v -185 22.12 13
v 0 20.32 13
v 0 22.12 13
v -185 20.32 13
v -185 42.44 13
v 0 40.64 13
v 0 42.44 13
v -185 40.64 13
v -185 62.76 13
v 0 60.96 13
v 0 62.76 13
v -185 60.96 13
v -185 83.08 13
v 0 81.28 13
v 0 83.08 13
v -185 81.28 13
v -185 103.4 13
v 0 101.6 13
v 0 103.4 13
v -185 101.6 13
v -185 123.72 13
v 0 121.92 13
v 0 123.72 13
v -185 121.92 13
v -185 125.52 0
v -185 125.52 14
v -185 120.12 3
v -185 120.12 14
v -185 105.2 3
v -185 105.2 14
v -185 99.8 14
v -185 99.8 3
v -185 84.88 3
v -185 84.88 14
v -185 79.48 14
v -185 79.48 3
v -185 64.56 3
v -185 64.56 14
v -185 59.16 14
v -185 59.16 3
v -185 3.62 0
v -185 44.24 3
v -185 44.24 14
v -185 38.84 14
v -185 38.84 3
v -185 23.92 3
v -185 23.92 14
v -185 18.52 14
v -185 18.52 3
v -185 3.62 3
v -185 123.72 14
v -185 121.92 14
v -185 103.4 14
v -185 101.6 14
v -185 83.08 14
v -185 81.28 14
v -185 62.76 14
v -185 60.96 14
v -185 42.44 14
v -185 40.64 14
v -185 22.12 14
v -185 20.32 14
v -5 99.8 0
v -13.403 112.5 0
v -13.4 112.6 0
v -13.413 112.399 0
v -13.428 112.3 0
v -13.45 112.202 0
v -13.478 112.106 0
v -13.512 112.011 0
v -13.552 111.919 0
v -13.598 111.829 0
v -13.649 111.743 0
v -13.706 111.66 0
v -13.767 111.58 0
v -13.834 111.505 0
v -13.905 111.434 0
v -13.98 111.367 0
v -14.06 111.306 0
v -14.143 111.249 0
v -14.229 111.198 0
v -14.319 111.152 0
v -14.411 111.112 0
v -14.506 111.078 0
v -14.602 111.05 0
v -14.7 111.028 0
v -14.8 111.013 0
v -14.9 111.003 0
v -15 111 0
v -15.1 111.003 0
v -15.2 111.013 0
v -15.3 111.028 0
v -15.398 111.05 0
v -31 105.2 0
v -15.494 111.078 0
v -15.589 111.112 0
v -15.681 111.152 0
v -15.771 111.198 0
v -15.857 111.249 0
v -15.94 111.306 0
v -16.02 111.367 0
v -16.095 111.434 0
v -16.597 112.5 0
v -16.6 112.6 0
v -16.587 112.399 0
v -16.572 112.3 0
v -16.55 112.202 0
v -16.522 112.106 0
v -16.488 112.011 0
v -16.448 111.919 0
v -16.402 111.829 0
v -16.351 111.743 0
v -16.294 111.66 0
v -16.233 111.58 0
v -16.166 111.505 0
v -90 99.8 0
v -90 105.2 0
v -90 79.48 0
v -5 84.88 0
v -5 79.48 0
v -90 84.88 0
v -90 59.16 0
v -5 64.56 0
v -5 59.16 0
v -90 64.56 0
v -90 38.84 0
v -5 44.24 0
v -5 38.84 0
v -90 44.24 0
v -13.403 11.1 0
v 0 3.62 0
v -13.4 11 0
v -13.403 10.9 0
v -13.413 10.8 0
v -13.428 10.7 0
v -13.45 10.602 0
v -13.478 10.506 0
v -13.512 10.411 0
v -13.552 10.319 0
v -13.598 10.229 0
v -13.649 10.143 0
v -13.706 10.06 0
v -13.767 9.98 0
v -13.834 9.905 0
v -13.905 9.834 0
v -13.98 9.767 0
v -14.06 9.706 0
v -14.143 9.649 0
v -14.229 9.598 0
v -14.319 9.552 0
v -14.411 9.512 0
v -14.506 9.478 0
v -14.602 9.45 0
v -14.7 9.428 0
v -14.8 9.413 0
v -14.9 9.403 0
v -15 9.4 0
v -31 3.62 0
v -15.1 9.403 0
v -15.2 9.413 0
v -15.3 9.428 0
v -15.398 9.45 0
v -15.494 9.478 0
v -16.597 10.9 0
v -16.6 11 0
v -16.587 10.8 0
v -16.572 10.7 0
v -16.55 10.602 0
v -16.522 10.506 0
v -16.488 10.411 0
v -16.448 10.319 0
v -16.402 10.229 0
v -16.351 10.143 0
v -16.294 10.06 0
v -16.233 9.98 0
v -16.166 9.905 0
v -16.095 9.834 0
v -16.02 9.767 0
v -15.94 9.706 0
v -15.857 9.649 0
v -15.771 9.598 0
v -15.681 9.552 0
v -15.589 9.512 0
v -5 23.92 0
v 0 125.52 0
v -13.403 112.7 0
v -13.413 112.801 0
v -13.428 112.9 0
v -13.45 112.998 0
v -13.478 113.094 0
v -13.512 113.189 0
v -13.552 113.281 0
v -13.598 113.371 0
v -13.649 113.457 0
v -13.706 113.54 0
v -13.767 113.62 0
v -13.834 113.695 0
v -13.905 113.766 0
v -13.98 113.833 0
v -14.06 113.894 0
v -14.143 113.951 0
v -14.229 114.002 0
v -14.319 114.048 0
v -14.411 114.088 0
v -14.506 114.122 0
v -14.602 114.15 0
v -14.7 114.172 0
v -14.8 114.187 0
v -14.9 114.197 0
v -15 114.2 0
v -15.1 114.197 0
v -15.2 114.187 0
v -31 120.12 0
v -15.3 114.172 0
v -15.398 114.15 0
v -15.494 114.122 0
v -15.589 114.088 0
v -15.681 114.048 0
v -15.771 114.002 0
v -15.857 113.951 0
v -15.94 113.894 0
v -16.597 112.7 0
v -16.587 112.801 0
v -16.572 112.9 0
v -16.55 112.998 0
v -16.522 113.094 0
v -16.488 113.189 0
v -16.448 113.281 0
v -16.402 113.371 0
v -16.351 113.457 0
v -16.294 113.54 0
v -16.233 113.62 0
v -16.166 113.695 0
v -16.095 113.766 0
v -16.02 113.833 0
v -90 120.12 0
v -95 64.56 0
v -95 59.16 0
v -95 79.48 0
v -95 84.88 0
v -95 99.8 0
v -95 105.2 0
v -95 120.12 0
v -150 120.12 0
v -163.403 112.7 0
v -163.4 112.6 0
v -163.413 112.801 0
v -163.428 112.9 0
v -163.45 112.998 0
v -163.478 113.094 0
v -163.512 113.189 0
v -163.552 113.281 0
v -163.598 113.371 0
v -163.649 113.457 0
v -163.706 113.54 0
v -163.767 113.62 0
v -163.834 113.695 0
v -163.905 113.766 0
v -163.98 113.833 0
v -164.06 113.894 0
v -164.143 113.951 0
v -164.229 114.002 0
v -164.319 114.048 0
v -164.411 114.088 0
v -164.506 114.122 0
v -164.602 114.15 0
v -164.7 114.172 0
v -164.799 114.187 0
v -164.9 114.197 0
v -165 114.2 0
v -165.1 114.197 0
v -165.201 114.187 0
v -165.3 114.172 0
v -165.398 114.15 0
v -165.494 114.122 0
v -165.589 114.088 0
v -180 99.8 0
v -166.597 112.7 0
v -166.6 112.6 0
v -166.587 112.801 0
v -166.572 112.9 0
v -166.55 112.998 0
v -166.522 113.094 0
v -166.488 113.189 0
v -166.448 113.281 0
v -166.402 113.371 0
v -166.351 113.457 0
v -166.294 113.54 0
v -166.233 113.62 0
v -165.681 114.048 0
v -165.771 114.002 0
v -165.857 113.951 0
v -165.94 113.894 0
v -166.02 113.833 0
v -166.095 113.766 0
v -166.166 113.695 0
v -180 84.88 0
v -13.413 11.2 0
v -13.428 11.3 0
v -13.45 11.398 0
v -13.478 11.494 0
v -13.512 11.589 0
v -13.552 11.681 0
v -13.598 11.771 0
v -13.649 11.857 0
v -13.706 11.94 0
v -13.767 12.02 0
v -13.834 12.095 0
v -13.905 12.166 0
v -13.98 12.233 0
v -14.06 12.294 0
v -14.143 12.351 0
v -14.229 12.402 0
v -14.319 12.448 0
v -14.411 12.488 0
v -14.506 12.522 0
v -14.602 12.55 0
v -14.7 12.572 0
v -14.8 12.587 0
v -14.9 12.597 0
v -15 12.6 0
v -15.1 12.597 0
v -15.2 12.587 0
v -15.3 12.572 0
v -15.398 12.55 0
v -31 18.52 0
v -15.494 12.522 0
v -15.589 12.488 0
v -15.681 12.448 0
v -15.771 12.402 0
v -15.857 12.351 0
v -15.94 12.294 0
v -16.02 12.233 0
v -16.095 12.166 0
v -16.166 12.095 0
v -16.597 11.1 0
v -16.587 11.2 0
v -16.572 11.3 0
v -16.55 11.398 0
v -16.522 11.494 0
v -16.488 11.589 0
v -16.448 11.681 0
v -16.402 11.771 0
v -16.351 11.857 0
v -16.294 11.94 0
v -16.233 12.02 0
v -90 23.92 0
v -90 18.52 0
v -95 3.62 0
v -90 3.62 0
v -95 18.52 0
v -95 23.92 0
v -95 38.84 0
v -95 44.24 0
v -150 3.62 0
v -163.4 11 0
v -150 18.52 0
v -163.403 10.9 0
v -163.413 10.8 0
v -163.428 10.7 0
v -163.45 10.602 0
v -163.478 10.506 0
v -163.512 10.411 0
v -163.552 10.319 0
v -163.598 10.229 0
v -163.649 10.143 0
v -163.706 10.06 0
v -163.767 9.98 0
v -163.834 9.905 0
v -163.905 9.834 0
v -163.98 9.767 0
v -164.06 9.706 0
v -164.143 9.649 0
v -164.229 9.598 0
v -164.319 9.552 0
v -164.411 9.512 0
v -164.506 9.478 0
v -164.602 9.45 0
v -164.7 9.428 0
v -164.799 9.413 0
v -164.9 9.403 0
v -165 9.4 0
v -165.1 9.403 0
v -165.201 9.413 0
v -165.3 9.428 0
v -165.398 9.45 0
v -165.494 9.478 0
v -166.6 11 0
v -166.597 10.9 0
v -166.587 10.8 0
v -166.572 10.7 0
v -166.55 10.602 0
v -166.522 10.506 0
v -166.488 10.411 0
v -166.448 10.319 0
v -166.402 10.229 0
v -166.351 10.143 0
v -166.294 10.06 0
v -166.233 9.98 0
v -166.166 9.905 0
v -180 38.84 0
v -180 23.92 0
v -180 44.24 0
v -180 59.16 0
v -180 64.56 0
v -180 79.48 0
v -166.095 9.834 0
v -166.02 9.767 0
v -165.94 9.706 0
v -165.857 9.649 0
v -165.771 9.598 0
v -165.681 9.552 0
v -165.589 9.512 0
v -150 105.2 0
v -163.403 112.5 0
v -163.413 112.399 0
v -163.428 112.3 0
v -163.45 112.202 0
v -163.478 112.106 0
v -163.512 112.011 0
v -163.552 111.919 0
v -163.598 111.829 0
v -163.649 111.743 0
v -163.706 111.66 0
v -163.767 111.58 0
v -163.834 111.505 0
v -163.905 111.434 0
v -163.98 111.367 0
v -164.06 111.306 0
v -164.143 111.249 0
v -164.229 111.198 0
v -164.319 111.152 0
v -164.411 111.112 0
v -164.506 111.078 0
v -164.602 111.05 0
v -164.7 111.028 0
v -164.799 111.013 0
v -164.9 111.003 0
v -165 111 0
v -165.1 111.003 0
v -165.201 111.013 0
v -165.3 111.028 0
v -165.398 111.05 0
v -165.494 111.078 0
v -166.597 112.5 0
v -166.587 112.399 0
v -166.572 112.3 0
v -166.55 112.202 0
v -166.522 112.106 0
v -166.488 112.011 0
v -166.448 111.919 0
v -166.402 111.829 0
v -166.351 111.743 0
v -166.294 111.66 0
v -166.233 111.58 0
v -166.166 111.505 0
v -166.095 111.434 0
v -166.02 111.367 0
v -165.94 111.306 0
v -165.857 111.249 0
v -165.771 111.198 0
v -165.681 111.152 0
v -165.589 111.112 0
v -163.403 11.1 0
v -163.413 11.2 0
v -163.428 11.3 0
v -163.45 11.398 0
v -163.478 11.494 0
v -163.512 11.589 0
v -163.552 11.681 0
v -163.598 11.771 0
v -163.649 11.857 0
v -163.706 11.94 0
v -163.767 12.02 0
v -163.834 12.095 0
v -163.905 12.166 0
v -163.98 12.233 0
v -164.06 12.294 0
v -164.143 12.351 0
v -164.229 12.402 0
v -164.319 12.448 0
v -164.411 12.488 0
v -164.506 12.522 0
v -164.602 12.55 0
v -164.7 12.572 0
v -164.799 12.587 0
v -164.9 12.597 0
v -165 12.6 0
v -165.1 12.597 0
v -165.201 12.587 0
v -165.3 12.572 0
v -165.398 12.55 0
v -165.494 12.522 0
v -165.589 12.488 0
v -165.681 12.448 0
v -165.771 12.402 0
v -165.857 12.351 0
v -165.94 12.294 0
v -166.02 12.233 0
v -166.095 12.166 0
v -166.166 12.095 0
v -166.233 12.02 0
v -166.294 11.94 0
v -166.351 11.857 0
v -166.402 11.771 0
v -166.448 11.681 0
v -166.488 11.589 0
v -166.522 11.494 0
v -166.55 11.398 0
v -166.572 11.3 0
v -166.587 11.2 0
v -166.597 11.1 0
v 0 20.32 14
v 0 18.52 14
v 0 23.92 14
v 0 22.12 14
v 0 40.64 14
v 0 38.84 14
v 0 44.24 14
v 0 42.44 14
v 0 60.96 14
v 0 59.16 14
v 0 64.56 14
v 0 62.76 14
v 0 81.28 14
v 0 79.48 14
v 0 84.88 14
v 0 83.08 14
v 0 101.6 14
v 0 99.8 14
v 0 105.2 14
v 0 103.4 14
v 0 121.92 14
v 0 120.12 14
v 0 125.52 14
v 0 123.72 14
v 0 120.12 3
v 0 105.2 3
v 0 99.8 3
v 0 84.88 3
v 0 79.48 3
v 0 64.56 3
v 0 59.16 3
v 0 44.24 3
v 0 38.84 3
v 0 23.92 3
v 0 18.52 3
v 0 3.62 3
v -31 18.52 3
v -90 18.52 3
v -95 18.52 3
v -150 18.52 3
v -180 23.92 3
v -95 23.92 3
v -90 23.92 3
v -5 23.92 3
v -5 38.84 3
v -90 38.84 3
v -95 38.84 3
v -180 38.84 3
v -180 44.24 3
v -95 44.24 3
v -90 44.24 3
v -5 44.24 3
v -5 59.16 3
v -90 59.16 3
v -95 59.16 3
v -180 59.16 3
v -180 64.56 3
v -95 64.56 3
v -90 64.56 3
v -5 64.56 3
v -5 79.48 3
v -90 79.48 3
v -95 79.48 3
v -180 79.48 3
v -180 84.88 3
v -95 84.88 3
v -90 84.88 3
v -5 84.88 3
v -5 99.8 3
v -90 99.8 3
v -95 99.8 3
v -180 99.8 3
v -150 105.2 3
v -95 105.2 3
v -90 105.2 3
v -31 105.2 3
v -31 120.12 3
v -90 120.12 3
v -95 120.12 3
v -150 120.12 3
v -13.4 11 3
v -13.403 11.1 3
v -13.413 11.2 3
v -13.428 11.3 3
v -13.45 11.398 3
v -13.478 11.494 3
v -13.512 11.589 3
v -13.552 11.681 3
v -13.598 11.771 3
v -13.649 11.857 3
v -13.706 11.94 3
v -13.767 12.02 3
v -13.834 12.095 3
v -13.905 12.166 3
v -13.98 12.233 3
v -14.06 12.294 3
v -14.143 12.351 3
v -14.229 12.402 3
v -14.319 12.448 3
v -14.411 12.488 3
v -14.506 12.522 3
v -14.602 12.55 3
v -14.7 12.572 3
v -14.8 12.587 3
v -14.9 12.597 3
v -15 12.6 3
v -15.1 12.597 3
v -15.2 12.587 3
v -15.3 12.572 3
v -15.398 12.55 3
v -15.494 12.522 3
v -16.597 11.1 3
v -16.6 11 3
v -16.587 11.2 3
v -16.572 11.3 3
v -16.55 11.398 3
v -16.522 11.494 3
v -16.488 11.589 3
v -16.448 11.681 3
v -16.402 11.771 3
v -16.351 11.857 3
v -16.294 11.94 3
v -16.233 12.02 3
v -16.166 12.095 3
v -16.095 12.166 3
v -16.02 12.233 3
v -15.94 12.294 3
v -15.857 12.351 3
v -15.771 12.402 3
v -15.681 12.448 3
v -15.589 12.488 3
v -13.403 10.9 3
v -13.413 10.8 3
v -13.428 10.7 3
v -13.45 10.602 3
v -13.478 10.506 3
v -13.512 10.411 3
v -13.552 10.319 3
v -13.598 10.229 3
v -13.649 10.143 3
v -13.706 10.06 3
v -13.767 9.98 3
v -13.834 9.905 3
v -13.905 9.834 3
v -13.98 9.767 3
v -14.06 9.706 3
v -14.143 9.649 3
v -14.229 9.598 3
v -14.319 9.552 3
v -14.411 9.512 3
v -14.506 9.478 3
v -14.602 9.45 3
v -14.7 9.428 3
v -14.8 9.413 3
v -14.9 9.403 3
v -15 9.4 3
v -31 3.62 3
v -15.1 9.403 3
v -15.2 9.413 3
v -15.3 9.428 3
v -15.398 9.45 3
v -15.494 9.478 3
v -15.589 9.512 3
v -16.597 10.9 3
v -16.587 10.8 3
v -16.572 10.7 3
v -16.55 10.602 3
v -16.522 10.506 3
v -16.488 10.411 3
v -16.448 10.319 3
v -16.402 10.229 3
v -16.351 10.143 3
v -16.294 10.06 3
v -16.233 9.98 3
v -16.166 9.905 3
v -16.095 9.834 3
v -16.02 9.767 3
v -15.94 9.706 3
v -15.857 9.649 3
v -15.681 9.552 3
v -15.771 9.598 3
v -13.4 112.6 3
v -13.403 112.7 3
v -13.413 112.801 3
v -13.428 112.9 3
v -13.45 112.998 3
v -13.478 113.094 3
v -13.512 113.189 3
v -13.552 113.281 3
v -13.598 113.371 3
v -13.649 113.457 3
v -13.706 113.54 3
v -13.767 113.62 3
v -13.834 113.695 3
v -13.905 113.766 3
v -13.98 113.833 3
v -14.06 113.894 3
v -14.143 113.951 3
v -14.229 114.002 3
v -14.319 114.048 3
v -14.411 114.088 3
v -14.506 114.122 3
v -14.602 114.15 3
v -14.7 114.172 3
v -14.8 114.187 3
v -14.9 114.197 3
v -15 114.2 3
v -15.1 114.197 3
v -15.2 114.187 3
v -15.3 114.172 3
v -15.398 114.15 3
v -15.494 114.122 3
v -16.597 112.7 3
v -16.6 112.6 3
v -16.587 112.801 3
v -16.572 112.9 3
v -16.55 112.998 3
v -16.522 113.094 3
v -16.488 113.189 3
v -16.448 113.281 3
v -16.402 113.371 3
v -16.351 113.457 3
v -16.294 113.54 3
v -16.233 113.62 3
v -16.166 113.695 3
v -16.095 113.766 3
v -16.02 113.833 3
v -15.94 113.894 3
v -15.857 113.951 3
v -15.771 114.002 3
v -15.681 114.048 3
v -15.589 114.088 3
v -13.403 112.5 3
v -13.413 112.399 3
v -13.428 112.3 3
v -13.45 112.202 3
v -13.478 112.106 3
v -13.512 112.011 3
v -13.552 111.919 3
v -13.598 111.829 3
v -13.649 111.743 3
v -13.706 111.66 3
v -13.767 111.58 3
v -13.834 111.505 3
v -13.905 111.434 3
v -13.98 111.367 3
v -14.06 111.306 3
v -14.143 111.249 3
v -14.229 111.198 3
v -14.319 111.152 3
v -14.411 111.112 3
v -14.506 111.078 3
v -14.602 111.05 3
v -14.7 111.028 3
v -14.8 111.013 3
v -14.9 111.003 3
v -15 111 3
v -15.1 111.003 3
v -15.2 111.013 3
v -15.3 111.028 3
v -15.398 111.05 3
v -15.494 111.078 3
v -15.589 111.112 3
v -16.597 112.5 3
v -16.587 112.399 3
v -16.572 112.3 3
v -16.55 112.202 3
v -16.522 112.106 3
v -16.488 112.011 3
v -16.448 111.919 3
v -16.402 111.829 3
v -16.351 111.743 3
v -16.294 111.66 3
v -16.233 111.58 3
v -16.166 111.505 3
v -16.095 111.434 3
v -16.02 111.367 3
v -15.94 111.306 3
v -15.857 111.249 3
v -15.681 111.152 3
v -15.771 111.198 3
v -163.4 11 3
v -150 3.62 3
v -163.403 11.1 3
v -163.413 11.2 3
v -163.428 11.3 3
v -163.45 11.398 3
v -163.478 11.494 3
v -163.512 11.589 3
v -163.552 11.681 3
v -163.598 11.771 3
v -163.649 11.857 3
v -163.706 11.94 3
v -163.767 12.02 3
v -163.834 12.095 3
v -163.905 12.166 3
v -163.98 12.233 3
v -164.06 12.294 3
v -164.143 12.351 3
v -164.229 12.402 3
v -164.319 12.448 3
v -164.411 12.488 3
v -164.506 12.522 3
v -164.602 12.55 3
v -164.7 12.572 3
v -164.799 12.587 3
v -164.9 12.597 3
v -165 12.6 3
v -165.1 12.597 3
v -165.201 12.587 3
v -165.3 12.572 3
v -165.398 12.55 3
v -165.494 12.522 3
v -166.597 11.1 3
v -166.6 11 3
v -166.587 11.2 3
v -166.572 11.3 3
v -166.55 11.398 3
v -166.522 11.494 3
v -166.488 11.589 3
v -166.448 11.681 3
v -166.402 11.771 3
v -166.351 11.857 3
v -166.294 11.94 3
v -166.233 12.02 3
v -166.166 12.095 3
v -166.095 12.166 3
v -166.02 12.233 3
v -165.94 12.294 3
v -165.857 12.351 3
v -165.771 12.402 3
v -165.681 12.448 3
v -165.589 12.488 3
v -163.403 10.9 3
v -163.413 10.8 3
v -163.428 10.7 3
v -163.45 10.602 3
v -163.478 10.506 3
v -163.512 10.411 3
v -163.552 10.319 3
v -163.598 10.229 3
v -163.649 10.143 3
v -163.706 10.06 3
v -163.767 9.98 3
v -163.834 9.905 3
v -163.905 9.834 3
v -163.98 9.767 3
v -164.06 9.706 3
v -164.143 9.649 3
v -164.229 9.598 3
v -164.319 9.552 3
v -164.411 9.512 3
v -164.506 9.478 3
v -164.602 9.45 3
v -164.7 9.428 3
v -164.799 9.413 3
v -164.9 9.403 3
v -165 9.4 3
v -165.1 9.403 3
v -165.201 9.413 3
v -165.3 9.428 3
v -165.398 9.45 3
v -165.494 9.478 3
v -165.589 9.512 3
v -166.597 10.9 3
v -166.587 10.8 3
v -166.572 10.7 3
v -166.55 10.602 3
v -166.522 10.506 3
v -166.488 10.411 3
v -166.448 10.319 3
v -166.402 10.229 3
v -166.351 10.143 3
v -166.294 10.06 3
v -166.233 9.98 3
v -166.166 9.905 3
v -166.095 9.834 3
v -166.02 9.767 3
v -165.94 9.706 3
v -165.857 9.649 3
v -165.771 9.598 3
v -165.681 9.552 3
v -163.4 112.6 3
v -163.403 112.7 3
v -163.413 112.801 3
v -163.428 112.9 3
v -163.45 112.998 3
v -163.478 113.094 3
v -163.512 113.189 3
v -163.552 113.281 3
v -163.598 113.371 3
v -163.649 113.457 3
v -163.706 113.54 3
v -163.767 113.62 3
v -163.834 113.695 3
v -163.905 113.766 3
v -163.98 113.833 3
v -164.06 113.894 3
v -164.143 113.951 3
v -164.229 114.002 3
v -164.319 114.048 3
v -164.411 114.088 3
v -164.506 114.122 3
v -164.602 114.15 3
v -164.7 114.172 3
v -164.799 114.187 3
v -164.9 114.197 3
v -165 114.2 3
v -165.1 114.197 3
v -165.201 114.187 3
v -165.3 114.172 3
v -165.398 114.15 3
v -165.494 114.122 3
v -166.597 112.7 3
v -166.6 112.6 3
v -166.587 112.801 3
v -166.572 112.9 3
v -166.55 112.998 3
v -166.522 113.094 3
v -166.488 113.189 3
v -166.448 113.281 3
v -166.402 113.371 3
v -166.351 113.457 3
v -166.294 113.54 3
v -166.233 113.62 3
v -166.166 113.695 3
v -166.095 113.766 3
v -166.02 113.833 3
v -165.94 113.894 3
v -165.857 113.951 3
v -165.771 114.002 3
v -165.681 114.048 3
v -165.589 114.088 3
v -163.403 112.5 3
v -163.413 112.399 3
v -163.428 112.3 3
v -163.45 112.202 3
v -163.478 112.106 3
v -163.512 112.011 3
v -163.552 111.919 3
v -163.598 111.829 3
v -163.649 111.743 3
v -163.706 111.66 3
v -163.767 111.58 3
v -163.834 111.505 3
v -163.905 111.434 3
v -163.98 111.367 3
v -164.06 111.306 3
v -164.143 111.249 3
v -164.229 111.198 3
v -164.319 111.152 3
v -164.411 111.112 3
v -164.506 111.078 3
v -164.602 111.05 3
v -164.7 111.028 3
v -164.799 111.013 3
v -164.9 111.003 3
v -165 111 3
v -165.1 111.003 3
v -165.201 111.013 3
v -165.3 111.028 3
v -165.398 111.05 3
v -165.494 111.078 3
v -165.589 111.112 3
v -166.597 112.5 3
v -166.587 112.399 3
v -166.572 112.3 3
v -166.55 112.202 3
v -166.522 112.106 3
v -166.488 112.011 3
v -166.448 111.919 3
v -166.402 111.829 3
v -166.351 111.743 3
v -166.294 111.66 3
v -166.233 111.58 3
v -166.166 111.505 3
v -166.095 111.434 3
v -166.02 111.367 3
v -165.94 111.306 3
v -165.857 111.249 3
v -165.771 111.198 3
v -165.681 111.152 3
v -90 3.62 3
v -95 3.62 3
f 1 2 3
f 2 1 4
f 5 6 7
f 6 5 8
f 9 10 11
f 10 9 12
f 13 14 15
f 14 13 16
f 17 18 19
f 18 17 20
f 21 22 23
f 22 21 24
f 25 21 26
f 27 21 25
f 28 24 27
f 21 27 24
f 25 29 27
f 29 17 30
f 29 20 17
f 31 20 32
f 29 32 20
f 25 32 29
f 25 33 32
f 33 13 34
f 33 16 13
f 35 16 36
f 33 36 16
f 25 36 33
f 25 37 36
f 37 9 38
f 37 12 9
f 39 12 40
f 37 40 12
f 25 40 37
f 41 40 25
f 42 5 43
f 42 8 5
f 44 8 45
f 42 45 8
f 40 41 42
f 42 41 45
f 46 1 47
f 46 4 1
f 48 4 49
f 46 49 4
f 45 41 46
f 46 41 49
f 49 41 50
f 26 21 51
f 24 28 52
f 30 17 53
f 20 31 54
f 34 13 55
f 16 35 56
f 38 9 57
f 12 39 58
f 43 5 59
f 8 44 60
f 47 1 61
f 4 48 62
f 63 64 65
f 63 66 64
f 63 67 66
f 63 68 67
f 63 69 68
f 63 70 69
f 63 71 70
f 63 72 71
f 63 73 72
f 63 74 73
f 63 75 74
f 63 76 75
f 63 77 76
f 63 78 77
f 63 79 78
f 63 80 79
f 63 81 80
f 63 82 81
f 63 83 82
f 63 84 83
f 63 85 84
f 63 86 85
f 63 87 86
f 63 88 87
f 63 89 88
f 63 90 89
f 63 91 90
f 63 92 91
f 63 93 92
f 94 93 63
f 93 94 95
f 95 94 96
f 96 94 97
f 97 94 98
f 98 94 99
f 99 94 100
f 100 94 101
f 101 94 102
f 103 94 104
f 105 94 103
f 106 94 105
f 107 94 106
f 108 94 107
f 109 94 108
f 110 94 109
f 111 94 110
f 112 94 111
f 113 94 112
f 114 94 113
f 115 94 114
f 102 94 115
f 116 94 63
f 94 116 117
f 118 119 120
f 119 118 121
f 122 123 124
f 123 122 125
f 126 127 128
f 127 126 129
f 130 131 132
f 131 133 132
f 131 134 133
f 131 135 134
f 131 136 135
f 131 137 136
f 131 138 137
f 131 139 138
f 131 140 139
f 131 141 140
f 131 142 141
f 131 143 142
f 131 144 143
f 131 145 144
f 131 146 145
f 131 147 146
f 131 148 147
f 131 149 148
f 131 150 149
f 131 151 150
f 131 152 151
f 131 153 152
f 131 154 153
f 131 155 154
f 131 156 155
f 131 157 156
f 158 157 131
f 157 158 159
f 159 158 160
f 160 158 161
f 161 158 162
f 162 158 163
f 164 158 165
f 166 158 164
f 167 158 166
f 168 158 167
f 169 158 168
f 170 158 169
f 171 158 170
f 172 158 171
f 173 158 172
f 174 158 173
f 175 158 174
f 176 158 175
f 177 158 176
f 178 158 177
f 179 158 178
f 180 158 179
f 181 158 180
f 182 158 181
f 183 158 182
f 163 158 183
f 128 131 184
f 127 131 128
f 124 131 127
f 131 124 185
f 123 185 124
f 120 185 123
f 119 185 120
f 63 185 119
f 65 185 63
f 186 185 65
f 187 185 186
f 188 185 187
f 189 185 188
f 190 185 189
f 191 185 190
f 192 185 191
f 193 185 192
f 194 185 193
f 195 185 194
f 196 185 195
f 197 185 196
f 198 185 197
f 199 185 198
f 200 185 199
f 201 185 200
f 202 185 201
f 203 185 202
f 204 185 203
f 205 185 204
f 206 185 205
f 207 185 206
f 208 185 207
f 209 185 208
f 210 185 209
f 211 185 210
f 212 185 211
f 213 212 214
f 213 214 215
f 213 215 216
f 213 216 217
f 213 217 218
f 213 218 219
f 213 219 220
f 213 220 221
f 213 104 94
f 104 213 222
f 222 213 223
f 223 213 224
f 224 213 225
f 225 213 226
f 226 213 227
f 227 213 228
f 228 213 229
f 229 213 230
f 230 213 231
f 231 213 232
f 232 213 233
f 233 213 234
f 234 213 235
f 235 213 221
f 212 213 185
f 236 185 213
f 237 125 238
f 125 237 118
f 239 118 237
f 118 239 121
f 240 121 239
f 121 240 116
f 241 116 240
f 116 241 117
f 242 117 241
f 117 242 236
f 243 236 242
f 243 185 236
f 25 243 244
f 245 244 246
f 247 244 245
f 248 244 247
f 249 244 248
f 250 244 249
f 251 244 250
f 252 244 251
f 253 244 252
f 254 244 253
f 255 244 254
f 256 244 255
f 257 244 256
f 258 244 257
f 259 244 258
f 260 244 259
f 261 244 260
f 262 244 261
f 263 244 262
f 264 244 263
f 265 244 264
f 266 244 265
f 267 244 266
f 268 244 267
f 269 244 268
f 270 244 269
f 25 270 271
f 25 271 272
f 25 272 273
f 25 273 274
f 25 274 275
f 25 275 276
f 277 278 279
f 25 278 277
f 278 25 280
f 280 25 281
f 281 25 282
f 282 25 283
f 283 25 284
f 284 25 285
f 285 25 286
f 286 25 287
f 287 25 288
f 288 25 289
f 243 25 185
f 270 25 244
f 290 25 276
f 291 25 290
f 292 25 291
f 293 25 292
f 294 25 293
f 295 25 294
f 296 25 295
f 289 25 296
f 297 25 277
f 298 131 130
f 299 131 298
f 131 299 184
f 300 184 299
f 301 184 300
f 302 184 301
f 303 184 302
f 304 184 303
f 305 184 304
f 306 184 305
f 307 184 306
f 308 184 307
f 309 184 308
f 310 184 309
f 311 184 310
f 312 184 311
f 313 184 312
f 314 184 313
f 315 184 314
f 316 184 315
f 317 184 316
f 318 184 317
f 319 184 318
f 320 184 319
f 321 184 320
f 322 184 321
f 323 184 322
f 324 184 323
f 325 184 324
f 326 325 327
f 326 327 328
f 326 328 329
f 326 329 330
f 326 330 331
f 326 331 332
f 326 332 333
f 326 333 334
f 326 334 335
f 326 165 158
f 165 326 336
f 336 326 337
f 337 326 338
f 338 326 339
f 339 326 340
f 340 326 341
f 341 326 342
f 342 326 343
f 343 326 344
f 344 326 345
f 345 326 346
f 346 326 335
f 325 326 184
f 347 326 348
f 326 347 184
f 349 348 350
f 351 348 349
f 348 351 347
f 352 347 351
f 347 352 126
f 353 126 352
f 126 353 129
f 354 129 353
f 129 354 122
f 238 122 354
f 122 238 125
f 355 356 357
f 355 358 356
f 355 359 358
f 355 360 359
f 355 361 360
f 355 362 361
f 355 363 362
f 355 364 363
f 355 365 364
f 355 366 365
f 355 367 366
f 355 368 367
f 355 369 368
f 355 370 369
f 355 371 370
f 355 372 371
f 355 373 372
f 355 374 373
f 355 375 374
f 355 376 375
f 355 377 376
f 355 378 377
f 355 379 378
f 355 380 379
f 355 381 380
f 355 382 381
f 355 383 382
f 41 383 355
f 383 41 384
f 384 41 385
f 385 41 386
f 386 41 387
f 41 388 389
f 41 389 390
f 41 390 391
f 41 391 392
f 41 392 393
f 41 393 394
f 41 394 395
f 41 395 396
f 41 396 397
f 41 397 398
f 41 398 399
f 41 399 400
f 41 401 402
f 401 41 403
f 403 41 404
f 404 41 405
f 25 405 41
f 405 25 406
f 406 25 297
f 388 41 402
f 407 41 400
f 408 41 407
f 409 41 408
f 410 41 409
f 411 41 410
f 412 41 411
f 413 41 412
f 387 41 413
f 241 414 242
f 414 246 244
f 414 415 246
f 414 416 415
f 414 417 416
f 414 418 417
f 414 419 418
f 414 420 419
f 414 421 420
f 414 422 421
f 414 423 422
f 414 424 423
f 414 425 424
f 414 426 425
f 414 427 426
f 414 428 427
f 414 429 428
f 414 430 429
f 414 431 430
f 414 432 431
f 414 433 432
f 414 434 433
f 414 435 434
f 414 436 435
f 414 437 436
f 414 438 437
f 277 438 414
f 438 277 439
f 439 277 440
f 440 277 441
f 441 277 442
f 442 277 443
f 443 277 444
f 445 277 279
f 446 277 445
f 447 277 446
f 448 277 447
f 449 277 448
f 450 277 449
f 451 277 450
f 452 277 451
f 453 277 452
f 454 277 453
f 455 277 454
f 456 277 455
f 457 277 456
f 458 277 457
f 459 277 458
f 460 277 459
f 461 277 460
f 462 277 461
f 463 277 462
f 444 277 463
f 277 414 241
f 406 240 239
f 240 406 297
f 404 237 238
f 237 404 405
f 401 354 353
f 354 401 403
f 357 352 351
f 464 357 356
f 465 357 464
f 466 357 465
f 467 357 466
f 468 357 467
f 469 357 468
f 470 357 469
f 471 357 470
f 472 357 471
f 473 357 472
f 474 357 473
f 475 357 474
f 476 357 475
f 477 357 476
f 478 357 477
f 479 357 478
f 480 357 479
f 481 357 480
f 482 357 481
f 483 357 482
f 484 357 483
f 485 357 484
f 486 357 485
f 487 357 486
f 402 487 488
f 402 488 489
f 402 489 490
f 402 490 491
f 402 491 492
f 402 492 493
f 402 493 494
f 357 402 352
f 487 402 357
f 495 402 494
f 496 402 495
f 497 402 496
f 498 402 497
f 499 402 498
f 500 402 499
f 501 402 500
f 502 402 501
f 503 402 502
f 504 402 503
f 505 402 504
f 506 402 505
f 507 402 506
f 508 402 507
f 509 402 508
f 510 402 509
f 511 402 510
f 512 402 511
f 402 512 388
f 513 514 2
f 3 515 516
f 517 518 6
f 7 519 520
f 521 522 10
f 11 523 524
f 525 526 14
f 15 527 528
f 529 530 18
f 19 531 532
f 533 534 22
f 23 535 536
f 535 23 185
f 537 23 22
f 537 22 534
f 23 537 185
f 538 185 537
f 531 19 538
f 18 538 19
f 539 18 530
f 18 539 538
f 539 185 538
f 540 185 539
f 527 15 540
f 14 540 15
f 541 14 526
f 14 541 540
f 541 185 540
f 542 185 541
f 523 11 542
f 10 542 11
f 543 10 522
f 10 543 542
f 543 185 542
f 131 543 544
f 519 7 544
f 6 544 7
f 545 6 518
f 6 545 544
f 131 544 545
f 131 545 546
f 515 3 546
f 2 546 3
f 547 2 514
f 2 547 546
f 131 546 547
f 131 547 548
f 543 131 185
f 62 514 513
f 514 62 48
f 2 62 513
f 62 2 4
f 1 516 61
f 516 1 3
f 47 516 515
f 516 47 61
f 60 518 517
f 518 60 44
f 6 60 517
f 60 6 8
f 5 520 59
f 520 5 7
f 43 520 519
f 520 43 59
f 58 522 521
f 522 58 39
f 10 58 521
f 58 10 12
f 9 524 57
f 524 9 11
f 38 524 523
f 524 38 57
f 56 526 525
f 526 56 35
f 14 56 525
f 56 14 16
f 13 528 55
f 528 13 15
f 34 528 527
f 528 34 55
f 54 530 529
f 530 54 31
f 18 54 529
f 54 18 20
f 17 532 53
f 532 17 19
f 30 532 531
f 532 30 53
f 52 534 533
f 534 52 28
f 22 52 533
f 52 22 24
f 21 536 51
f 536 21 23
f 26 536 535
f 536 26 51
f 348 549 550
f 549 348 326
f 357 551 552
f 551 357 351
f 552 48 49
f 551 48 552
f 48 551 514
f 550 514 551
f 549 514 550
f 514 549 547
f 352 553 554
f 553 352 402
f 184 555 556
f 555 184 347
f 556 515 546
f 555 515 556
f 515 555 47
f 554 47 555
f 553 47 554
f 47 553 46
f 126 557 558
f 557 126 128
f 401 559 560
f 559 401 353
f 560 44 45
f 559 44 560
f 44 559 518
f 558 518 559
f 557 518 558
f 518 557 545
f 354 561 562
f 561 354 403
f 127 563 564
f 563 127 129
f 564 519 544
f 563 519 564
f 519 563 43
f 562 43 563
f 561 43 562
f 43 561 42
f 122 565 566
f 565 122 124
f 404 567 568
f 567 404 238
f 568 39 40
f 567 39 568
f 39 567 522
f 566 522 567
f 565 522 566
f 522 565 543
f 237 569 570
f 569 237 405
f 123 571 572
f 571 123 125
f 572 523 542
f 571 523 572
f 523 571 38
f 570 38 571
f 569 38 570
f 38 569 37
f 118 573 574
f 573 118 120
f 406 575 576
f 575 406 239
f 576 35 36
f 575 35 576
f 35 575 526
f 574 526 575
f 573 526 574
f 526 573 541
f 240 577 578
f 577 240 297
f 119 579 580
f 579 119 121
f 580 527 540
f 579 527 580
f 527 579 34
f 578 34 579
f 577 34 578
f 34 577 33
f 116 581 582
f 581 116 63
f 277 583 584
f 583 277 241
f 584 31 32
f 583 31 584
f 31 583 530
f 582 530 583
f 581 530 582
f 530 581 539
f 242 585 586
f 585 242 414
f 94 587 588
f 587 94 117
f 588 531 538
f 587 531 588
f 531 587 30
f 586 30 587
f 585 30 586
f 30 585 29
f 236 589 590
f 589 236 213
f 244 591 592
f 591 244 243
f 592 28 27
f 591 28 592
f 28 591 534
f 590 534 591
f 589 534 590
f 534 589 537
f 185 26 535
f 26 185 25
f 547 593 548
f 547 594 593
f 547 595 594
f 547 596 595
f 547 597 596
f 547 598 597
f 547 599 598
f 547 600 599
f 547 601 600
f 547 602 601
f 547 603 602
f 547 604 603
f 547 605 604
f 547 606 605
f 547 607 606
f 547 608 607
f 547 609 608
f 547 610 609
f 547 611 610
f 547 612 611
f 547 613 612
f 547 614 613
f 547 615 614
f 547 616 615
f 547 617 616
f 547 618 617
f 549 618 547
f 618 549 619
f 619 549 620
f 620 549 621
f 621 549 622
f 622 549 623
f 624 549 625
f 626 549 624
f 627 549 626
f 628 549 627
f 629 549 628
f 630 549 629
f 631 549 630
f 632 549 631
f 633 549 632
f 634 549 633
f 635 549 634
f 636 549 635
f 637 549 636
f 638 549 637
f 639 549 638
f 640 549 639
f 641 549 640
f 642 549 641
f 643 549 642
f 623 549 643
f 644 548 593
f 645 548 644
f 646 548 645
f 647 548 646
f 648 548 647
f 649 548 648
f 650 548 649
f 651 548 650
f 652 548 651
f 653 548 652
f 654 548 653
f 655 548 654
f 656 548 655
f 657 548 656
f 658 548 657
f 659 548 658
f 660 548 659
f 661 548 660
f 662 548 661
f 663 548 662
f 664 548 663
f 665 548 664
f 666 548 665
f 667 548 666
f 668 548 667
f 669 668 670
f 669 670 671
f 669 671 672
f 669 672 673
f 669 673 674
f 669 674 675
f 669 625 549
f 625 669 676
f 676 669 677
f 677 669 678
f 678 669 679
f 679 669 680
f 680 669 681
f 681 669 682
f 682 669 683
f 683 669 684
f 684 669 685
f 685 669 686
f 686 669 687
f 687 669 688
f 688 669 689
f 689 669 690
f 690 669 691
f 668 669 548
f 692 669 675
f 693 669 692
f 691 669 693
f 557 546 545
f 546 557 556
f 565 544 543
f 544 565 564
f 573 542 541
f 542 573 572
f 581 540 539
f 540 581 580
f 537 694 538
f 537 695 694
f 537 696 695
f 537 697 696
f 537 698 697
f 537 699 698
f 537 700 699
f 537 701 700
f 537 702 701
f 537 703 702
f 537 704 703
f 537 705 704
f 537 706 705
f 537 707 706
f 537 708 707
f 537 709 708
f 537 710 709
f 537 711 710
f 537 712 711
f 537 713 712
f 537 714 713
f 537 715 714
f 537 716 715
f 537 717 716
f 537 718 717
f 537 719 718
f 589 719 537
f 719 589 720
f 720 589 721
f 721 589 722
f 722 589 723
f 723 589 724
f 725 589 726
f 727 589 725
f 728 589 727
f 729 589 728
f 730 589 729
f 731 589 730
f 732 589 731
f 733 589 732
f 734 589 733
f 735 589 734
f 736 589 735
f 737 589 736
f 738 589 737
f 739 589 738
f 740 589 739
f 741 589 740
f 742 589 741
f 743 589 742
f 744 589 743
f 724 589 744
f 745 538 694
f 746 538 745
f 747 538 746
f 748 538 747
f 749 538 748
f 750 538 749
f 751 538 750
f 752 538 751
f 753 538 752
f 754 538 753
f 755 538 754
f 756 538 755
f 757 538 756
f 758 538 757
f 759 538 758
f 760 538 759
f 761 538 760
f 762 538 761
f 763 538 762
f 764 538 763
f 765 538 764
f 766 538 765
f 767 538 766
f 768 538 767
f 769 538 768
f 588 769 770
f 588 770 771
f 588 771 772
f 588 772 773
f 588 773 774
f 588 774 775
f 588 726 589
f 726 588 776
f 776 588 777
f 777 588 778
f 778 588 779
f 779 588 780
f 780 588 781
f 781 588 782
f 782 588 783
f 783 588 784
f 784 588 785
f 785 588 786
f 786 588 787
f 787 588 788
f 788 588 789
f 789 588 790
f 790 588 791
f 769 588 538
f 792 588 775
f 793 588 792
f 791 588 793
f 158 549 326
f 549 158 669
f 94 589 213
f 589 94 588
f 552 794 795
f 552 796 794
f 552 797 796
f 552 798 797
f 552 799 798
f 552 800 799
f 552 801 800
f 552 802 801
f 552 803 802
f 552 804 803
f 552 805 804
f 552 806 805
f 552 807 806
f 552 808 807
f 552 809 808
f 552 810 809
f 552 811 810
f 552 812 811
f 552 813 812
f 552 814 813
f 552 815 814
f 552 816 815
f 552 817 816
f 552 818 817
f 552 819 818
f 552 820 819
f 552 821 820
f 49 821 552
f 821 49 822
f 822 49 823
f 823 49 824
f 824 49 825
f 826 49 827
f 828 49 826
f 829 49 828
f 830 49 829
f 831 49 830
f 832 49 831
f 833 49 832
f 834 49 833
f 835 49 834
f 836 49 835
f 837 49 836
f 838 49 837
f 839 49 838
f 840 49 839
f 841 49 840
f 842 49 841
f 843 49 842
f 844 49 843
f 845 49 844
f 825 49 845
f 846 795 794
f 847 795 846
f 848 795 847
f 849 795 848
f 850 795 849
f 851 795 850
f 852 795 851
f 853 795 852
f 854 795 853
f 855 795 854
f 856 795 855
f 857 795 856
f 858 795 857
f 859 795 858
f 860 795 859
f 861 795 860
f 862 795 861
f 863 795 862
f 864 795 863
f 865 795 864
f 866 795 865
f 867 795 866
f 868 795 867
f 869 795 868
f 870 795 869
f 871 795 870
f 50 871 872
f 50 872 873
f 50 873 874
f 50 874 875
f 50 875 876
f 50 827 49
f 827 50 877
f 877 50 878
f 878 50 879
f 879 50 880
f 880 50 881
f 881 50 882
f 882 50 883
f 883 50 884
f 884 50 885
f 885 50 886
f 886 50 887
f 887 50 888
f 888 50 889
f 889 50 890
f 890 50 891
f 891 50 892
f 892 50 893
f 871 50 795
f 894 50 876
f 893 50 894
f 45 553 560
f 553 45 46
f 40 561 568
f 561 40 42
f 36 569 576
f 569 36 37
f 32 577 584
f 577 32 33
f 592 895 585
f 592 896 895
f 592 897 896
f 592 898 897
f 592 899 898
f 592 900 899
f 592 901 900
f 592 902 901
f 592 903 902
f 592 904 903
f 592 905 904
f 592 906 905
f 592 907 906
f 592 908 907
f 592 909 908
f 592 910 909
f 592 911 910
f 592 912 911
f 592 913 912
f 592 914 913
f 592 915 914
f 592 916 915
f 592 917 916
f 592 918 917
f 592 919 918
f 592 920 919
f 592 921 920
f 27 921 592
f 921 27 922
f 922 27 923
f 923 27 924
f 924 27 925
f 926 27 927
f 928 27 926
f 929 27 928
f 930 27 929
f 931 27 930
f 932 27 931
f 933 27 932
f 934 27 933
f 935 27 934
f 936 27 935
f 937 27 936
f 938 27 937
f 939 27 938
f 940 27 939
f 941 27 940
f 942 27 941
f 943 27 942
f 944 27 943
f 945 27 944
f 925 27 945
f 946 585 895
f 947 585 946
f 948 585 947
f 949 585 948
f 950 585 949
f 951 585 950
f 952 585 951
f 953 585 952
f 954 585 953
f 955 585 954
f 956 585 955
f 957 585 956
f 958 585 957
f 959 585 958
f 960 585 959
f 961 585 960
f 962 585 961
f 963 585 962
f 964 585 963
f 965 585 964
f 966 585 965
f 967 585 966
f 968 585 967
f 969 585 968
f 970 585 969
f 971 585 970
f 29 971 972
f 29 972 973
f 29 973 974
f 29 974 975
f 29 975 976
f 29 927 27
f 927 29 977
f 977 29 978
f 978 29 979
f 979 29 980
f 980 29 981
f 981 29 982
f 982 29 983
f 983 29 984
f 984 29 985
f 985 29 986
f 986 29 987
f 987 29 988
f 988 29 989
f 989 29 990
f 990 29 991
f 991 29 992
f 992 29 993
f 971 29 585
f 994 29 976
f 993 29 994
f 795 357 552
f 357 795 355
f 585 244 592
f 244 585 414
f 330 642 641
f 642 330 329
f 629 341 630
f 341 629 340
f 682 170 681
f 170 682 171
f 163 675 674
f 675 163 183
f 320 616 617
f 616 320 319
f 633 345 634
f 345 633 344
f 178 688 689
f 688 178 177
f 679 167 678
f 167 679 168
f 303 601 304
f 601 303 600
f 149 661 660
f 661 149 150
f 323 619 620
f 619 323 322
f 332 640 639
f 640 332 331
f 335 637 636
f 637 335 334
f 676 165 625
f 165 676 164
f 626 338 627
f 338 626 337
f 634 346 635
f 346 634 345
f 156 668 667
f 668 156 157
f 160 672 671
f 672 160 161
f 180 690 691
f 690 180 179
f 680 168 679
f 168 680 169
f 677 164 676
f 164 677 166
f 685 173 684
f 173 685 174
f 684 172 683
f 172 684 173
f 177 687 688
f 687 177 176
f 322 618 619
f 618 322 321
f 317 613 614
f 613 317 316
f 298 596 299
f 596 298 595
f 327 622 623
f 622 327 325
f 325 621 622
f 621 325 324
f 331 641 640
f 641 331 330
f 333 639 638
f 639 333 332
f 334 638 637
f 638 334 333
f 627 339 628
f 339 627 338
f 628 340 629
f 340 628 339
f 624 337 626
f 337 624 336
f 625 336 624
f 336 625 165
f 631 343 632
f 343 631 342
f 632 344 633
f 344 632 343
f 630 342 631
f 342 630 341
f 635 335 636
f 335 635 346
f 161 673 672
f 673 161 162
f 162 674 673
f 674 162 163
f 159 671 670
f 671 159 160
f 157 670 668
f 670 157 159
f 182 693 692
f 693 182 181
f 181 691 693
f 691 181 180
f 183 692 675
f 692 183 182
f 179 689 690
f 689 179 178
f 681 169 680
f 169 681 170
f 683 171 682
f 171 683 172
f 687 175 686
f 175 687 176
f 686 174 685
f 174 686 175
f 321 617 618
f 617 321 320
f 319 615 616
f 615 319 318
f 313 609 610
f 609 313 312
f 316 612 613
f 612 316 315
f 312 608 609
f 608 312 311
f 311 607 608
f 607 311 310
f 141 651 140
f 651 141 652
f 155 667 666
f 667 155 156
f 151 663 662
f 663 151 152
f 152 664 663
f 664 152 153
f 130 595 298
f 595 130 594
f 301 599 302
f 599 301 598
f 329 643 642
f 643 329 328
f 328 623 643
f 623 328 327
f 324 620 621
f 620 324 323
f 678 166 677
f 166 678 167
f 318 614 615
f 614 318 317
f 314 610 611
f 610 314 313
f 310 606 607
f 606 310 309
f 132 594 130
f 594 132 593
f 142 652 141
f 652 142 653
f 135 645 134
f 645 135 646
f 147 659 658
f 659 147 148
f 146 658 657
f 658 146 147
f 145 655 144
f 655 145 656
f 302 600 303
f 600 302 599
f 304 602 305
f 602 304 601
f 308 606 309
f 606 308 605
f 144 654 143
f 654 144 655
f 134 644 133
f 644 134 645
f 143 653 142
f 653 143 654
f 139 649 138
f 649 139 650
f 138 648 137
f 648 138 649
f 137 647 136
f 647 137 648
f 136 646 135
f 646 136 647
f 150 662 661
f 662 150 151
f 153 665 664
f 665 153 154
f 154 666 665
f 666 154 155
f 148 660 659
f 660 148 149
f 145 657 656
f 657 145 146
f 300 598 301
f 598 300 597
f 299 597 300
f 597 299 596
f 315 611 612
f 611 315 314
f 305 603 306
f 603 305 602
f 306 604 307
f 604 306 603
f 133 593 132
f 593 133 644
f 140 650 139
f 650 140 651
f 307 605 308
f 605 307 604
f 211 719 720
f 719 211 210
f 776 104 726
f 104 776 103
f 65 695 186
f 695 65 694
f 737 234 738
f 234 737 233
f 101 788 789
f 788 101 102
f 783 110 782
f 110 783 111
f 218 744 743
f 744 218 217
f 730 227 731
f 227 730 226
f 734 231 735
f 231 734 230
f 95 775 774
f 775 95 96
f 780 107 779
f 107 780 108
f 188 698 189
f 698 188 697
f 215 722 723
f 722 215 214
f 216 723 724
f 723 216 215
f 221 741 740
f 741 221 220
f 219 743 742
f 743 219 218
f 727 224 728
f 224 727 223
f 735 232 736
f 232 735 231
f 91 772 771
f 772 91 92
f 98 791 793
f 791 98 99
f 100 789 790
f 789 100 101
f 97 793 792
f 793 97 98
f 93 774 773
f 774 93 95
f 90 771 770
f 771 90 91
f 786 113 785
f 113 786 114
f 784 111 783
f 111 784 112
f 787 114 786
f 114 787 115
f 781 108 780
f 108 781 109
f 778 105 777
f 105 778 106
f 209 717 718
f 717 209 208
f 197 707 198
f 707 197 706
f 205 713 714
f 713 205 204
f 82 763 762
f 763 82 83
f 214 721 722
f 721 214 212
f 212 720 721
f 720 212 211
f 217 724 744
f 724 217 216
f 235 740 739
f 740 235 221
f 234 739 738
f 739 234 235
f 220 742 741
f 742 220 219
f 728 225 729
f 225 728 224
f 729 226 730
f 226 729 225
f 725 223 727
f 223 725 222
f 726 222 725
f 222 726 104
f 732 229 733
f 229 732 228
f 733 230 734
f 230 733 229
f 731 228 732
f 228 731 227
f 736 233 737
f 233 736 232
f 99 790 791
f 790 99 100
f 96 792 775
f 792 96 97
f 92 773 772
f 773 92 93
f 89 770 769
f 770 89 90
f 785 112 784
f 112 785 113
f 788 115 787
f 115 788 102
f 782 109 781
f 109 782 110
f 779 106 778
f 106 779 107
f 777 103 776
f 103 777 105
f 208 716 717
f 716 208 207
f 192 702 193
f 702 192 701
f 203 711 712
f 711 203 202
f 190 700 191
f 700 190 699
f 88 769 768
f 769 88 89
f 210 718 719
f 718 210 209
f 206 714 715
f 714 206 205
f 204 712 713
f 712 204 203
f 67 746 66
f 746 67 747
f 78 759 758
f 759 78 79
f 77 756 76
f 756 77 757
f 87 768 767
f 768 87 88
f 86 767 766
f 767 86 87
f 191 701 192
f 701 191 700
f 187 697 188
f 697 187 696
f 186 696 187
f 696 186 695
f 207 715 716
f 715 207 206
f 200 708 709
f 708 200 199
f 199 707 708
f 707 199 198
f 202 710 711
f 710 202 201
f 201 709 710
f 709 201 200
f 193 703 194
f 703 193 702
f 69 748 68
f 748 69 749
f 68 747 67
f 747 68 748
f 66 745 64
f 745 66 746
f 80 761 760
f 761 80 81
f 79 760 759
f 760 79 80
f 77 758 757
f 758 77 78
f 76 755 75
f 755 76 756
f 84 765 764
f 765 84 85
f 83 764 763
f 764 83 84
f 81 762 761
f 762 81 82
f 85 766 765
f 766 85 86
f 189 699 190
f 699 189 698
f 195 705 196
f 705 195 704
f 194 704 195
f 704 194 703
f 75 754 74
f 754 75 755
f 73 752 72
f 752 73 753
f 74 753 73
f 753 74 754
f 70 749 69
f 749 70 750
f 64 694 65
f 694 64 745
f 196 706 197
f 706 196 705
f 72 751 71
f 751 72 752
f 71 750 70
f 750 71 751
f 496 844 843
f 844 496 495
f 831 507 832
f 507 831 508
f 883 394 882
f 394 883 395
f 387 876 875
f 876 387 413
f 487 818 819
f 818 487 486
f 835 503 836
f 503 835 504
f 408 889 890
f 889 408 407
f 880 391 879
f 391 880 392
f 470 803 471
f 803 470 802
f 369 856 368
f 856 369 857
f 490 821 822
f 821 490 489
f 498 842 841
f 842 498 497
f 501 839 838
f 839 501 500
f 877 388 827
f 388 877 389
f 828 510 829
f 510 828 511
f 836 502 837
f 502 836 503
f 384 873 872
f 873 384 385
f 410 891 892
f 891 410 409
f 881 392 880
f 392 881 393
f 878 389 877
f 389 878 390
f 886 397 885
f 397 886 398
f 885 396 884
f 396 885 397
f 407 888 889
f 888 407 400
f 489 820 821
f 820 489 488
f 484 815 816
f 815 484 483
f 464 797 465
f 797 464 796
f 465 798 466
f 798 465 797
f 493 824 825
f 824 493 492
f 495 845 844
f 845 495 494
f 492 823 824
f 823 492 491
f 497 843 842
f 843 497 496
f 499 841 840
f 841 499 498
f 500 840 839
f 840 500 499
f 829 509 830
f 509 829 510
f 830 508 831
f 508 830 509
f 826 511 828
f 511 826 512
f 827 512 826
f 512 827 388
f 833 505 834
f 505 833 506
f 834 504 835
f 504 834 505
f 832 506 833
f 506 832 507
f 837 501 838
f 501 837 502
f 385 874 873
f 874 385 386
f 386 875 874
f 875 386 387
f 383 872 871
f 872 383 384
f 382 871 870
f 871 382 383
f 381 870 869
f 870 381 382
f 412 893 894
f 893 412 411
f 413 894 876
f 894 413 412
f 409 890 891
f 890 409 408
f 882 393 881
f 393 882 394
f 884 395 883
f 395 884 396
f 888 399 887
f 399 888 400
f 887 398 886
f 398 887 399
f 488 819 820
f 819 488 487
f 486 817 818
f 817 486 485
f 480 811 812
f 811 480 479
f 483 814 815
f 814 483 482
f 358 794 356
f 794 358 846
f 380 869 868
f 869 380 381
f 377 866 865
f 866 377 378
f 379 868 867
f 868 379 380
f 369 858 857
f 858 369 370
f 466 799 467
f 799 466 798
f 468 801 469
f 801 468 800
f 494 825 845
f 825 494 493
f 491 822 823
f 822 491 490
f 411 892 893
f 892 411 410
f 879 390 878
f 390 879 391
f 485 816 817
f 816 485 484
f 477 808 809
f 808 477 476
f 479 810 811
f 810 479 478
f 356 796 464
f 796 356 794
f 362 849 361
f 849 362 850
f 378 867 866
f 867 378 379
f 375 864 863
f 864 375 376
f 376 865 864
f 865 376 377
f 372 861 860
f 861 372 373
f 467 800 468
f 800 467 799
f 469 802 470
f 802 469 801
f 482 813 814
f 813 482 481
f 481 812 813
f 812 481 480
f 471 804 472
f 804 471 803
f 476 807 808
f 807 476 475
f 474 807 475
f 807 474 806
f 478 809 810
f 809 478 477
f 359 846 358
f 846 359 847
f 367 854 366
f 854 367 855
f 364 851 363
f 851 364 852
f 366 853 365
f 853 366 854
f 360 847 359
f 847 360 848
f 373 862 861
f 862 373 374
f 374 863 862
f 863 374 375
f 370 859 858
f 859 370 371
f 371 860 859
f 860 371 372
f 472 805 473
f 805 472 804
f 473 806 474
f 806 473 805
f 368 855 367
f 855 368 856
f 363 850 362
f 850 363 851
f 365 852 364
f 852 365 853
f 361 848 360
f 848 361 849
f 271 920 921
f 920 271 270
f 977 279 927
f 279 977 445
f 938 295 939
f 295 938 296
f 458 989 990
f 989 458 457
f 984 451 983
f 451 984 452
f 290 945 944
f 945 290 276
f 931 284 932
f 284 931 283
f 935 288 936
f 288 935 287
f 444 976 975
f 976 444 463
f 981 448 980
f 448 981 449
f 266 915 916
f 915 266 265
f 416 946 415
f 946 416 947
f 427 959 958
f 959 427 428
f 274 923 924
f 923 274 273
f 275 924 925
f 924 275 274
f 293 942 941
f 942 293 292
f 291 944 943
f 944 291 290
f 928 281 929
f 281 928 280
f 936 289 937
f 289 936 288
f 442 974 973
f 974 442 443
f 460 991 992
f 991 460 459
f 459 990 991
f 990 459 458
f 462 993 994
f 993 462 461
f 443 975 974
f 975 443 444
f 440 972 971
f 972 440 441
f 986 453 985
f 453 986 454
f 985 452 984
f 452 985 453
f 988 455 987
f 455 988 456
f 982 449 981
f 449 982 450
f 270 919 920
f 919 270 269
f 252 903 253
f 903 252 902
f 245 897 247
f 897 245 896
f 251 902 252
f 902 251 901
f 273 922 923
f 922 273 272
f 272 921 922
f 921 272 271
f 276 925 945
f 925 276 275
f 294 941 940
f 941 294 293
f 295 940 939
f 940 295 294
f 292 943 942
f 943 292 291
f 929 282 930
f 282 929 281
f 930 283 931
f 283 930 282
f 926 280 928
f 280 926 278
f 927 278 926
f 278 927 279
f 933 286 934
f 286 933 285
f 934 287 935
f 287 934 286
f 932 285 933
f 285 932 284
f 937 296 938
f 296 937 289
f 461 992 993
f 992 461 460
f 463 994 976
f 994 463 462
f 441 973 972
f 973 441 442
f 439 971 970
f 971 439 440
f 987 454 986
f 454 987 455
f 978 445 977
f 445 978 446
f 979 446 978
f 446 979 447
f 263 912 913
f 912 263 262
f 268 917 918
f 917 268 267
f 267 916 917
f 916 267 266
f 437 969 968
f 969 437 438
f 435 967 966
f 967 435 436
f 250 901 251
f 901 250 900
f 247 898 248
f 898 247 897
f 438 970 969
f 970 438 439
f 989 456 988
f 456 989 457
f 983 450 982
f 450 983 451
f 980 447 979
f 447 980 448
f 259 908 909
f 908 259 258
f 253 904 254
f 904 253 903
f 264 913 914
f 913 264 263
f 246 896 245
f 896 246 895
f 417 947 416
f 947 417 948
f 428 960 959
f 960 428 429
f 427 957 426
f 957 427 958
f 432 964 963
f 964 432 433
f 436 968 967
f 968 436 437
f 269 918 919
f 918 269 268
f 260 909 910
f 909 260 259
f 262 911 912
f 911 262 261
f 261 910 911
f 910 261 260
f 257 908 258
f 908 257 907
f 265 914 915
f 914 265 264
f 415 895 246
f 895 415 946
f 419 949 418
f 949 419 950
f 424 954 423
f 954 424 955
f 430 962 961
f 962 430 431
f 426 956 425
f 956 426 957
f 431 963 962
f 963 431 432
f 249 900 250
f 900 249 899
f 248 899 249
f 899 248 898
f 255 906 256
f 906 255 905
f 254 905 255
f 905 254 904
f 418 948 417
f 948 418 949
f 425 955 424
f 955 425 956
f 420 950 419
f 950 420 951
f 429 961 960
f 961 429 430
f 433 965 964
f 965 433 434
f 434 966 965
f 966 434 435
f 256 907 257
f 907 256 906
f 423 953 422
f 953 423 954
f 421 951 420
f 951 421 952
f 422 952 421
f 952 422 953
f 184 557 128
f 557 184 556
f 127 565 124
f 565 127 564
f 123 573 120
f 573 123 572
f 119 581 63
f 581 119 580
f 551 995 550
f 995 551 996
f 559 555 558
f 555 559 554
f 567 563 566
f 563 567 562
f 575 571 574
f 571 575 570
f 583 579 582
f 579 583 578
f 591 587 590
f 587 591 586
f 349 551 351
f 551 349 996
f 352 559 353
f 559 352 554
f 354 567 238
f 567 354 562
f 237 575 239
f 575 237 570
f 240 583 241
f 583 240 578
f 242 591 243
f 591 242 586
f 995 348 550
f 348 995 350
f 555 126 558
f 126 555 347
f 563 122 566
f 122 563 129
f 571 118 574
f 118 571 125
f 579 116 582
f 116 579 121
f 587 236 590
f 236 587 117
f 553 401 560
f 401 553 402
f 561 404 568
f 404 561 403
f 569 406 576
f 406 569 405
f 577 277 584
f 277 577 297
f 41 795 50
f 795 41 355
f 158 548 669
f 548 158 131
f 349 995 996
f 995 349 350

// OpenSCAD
rotate (90,0,0)
difference() {
    union () {
        difference(){
            union() {
                cube([254,185,13] );//suelo principal toca la tarjeta
                translate([(20.32*0+1.8),0,0]) cube([20.32-1.8,185,14]); //alto de guias
                translate([(20.32*1+1.8),0,0]) cube([20.32-1.8,185,14]);
                translate([(20.32*2+1.8),0,0]) cube([20.32-1.8,185,14]);
                translate([(20.32*3+1.8),0,0]) cube([20.32-1.8,185,14]);
                translate([(20.32*4+1.8),0,0]) cube([20.32-1.8,185,14]);
                translate([(20.32*5+1.8),0,0]) cube([20.32-1.8,185,14]);
                translate([(20.32*6+1.8),0,0]) cube([20.32-1.8,185,14]);//preparado para 12
                translate([(20.32*7+1.8),0,0]) cube([20.32-1.8,185,14]);
                translate([(20.32*8+1.8),0,0]) cube([20.32-1.8,185,14]);
                translate([(20.32*9+1.8),0,0]) cube([20.32-1.8,185,14]);
                translate([(20.32*10+1.8),0,0]) cube([20.32-1.8,185,14]);
                translate([(20.32*11+1.8),0,0]) cube([20.32-1.8,185,14]);
                translate([(20.32*12+1.8),0,0]) cube([8,185,14]);
            }


            translate([(20.32*0+3.6),-5,-1]) cube([20.32-1.8*3,195,16]);
            translate([(20.32*1+3.6),-5,-1]) cube([20.32-1.8*3,195,16]);
            translate([(20.32*2+3.6),-5,-1]) cube([20.32-1.8*3,195,16]);
            translate([(20.32*3+3.6),-5,-1]) cube([20.32-1.8*3,195,16]);
            translate([(20.32*4+3.6),-5,-1]) cube([20.32-1.8*3,195,16]);
            translate([(20.32*5+3.6),-5,-1]) cube([20.32-1.8*3,195,16]);
            translate([(20.32*6+3.6),-5,-1]) cube([20.32-1.8*3,195,16]);
            translate([(20.32*7+3.6),-5,-1]) cube([20.32-1.8*3,195,16]);
            translate([(20.32*8+3.6),-5,-1]) cube([20.32-1.8*3,195,16]);
            translate([(20.32*9+3.6),-5,-1]) cube([20.32-1.8*3,195,16]);
            translate([(20.32*10+3.6),-5,-1]) cube([20.32-1.8*3,195,16]);
            translate([(20.32*11+3.6),-5,-1]) cube([20.32-1.8*3,195,16]);
            translate([(20.32*12+3.6),-5,-1]) cube([9-1.8*3,195,16]);
                
        }
        cube([254,5,3]); //travesaños de union
        //translate ([0,45,0]) cube([254,5,3]); //antes a 30
        //translate ([0,60,0]) cube([254,5,10]); 
        translate ([0,90,0]) cube([254,5,3]);
        //translate ([0,120,0]) cube([254,5,10]);
        //translate ([0,130,0]) cube([254,5,3]);
        translate ([0,180,0]) cube([254,5,3]);
        difference () {
            union () { //soportes de taladro
                translate([(20.32*0+3.2),0,0]) cube([20.32-1.8,31,3]);
                translate([(20.32*5+3.2),0,0]) cube([20.32-1.8,31,3]);
                translate([(20.32*0+3.2),30*5,0]) cube([20.32-1.8,31,3]);
                translate([(20.32*5+3.2),30*5,0]) cube([20.32-1.8,31,3]);
            } // taladros
            translate ([(20.32*0+11),30*0+15,-1*10/2]) cylinder (r=3.2/2, h=20, $fn=100, center=true); 
            translate ([(20.32*5+11),30*0+15,-1*10/2]) cylinder (r=3.2/2, h=10, $fn=100); 
            translate ([(20.32*0+11),30*5+15,-1*10/2]) cylinder (r=3.2/2, h=10, $fn=100); 
            translate ([(20.32*5+11),30*5+15,-1*10/2]) cylinder (r=3.2/2, h=10, $fn=100); 
        }
    }  //quito partes para que entre en mi impresora
    translate([-1.8+0.02,-1,-1]) cube([1.8*3,200,20]); //elimino principio 
    translate([20.32*6+3.6,-1,-1]) cube([200,200,20]); //elimino ult. 6 (no caben)
}
